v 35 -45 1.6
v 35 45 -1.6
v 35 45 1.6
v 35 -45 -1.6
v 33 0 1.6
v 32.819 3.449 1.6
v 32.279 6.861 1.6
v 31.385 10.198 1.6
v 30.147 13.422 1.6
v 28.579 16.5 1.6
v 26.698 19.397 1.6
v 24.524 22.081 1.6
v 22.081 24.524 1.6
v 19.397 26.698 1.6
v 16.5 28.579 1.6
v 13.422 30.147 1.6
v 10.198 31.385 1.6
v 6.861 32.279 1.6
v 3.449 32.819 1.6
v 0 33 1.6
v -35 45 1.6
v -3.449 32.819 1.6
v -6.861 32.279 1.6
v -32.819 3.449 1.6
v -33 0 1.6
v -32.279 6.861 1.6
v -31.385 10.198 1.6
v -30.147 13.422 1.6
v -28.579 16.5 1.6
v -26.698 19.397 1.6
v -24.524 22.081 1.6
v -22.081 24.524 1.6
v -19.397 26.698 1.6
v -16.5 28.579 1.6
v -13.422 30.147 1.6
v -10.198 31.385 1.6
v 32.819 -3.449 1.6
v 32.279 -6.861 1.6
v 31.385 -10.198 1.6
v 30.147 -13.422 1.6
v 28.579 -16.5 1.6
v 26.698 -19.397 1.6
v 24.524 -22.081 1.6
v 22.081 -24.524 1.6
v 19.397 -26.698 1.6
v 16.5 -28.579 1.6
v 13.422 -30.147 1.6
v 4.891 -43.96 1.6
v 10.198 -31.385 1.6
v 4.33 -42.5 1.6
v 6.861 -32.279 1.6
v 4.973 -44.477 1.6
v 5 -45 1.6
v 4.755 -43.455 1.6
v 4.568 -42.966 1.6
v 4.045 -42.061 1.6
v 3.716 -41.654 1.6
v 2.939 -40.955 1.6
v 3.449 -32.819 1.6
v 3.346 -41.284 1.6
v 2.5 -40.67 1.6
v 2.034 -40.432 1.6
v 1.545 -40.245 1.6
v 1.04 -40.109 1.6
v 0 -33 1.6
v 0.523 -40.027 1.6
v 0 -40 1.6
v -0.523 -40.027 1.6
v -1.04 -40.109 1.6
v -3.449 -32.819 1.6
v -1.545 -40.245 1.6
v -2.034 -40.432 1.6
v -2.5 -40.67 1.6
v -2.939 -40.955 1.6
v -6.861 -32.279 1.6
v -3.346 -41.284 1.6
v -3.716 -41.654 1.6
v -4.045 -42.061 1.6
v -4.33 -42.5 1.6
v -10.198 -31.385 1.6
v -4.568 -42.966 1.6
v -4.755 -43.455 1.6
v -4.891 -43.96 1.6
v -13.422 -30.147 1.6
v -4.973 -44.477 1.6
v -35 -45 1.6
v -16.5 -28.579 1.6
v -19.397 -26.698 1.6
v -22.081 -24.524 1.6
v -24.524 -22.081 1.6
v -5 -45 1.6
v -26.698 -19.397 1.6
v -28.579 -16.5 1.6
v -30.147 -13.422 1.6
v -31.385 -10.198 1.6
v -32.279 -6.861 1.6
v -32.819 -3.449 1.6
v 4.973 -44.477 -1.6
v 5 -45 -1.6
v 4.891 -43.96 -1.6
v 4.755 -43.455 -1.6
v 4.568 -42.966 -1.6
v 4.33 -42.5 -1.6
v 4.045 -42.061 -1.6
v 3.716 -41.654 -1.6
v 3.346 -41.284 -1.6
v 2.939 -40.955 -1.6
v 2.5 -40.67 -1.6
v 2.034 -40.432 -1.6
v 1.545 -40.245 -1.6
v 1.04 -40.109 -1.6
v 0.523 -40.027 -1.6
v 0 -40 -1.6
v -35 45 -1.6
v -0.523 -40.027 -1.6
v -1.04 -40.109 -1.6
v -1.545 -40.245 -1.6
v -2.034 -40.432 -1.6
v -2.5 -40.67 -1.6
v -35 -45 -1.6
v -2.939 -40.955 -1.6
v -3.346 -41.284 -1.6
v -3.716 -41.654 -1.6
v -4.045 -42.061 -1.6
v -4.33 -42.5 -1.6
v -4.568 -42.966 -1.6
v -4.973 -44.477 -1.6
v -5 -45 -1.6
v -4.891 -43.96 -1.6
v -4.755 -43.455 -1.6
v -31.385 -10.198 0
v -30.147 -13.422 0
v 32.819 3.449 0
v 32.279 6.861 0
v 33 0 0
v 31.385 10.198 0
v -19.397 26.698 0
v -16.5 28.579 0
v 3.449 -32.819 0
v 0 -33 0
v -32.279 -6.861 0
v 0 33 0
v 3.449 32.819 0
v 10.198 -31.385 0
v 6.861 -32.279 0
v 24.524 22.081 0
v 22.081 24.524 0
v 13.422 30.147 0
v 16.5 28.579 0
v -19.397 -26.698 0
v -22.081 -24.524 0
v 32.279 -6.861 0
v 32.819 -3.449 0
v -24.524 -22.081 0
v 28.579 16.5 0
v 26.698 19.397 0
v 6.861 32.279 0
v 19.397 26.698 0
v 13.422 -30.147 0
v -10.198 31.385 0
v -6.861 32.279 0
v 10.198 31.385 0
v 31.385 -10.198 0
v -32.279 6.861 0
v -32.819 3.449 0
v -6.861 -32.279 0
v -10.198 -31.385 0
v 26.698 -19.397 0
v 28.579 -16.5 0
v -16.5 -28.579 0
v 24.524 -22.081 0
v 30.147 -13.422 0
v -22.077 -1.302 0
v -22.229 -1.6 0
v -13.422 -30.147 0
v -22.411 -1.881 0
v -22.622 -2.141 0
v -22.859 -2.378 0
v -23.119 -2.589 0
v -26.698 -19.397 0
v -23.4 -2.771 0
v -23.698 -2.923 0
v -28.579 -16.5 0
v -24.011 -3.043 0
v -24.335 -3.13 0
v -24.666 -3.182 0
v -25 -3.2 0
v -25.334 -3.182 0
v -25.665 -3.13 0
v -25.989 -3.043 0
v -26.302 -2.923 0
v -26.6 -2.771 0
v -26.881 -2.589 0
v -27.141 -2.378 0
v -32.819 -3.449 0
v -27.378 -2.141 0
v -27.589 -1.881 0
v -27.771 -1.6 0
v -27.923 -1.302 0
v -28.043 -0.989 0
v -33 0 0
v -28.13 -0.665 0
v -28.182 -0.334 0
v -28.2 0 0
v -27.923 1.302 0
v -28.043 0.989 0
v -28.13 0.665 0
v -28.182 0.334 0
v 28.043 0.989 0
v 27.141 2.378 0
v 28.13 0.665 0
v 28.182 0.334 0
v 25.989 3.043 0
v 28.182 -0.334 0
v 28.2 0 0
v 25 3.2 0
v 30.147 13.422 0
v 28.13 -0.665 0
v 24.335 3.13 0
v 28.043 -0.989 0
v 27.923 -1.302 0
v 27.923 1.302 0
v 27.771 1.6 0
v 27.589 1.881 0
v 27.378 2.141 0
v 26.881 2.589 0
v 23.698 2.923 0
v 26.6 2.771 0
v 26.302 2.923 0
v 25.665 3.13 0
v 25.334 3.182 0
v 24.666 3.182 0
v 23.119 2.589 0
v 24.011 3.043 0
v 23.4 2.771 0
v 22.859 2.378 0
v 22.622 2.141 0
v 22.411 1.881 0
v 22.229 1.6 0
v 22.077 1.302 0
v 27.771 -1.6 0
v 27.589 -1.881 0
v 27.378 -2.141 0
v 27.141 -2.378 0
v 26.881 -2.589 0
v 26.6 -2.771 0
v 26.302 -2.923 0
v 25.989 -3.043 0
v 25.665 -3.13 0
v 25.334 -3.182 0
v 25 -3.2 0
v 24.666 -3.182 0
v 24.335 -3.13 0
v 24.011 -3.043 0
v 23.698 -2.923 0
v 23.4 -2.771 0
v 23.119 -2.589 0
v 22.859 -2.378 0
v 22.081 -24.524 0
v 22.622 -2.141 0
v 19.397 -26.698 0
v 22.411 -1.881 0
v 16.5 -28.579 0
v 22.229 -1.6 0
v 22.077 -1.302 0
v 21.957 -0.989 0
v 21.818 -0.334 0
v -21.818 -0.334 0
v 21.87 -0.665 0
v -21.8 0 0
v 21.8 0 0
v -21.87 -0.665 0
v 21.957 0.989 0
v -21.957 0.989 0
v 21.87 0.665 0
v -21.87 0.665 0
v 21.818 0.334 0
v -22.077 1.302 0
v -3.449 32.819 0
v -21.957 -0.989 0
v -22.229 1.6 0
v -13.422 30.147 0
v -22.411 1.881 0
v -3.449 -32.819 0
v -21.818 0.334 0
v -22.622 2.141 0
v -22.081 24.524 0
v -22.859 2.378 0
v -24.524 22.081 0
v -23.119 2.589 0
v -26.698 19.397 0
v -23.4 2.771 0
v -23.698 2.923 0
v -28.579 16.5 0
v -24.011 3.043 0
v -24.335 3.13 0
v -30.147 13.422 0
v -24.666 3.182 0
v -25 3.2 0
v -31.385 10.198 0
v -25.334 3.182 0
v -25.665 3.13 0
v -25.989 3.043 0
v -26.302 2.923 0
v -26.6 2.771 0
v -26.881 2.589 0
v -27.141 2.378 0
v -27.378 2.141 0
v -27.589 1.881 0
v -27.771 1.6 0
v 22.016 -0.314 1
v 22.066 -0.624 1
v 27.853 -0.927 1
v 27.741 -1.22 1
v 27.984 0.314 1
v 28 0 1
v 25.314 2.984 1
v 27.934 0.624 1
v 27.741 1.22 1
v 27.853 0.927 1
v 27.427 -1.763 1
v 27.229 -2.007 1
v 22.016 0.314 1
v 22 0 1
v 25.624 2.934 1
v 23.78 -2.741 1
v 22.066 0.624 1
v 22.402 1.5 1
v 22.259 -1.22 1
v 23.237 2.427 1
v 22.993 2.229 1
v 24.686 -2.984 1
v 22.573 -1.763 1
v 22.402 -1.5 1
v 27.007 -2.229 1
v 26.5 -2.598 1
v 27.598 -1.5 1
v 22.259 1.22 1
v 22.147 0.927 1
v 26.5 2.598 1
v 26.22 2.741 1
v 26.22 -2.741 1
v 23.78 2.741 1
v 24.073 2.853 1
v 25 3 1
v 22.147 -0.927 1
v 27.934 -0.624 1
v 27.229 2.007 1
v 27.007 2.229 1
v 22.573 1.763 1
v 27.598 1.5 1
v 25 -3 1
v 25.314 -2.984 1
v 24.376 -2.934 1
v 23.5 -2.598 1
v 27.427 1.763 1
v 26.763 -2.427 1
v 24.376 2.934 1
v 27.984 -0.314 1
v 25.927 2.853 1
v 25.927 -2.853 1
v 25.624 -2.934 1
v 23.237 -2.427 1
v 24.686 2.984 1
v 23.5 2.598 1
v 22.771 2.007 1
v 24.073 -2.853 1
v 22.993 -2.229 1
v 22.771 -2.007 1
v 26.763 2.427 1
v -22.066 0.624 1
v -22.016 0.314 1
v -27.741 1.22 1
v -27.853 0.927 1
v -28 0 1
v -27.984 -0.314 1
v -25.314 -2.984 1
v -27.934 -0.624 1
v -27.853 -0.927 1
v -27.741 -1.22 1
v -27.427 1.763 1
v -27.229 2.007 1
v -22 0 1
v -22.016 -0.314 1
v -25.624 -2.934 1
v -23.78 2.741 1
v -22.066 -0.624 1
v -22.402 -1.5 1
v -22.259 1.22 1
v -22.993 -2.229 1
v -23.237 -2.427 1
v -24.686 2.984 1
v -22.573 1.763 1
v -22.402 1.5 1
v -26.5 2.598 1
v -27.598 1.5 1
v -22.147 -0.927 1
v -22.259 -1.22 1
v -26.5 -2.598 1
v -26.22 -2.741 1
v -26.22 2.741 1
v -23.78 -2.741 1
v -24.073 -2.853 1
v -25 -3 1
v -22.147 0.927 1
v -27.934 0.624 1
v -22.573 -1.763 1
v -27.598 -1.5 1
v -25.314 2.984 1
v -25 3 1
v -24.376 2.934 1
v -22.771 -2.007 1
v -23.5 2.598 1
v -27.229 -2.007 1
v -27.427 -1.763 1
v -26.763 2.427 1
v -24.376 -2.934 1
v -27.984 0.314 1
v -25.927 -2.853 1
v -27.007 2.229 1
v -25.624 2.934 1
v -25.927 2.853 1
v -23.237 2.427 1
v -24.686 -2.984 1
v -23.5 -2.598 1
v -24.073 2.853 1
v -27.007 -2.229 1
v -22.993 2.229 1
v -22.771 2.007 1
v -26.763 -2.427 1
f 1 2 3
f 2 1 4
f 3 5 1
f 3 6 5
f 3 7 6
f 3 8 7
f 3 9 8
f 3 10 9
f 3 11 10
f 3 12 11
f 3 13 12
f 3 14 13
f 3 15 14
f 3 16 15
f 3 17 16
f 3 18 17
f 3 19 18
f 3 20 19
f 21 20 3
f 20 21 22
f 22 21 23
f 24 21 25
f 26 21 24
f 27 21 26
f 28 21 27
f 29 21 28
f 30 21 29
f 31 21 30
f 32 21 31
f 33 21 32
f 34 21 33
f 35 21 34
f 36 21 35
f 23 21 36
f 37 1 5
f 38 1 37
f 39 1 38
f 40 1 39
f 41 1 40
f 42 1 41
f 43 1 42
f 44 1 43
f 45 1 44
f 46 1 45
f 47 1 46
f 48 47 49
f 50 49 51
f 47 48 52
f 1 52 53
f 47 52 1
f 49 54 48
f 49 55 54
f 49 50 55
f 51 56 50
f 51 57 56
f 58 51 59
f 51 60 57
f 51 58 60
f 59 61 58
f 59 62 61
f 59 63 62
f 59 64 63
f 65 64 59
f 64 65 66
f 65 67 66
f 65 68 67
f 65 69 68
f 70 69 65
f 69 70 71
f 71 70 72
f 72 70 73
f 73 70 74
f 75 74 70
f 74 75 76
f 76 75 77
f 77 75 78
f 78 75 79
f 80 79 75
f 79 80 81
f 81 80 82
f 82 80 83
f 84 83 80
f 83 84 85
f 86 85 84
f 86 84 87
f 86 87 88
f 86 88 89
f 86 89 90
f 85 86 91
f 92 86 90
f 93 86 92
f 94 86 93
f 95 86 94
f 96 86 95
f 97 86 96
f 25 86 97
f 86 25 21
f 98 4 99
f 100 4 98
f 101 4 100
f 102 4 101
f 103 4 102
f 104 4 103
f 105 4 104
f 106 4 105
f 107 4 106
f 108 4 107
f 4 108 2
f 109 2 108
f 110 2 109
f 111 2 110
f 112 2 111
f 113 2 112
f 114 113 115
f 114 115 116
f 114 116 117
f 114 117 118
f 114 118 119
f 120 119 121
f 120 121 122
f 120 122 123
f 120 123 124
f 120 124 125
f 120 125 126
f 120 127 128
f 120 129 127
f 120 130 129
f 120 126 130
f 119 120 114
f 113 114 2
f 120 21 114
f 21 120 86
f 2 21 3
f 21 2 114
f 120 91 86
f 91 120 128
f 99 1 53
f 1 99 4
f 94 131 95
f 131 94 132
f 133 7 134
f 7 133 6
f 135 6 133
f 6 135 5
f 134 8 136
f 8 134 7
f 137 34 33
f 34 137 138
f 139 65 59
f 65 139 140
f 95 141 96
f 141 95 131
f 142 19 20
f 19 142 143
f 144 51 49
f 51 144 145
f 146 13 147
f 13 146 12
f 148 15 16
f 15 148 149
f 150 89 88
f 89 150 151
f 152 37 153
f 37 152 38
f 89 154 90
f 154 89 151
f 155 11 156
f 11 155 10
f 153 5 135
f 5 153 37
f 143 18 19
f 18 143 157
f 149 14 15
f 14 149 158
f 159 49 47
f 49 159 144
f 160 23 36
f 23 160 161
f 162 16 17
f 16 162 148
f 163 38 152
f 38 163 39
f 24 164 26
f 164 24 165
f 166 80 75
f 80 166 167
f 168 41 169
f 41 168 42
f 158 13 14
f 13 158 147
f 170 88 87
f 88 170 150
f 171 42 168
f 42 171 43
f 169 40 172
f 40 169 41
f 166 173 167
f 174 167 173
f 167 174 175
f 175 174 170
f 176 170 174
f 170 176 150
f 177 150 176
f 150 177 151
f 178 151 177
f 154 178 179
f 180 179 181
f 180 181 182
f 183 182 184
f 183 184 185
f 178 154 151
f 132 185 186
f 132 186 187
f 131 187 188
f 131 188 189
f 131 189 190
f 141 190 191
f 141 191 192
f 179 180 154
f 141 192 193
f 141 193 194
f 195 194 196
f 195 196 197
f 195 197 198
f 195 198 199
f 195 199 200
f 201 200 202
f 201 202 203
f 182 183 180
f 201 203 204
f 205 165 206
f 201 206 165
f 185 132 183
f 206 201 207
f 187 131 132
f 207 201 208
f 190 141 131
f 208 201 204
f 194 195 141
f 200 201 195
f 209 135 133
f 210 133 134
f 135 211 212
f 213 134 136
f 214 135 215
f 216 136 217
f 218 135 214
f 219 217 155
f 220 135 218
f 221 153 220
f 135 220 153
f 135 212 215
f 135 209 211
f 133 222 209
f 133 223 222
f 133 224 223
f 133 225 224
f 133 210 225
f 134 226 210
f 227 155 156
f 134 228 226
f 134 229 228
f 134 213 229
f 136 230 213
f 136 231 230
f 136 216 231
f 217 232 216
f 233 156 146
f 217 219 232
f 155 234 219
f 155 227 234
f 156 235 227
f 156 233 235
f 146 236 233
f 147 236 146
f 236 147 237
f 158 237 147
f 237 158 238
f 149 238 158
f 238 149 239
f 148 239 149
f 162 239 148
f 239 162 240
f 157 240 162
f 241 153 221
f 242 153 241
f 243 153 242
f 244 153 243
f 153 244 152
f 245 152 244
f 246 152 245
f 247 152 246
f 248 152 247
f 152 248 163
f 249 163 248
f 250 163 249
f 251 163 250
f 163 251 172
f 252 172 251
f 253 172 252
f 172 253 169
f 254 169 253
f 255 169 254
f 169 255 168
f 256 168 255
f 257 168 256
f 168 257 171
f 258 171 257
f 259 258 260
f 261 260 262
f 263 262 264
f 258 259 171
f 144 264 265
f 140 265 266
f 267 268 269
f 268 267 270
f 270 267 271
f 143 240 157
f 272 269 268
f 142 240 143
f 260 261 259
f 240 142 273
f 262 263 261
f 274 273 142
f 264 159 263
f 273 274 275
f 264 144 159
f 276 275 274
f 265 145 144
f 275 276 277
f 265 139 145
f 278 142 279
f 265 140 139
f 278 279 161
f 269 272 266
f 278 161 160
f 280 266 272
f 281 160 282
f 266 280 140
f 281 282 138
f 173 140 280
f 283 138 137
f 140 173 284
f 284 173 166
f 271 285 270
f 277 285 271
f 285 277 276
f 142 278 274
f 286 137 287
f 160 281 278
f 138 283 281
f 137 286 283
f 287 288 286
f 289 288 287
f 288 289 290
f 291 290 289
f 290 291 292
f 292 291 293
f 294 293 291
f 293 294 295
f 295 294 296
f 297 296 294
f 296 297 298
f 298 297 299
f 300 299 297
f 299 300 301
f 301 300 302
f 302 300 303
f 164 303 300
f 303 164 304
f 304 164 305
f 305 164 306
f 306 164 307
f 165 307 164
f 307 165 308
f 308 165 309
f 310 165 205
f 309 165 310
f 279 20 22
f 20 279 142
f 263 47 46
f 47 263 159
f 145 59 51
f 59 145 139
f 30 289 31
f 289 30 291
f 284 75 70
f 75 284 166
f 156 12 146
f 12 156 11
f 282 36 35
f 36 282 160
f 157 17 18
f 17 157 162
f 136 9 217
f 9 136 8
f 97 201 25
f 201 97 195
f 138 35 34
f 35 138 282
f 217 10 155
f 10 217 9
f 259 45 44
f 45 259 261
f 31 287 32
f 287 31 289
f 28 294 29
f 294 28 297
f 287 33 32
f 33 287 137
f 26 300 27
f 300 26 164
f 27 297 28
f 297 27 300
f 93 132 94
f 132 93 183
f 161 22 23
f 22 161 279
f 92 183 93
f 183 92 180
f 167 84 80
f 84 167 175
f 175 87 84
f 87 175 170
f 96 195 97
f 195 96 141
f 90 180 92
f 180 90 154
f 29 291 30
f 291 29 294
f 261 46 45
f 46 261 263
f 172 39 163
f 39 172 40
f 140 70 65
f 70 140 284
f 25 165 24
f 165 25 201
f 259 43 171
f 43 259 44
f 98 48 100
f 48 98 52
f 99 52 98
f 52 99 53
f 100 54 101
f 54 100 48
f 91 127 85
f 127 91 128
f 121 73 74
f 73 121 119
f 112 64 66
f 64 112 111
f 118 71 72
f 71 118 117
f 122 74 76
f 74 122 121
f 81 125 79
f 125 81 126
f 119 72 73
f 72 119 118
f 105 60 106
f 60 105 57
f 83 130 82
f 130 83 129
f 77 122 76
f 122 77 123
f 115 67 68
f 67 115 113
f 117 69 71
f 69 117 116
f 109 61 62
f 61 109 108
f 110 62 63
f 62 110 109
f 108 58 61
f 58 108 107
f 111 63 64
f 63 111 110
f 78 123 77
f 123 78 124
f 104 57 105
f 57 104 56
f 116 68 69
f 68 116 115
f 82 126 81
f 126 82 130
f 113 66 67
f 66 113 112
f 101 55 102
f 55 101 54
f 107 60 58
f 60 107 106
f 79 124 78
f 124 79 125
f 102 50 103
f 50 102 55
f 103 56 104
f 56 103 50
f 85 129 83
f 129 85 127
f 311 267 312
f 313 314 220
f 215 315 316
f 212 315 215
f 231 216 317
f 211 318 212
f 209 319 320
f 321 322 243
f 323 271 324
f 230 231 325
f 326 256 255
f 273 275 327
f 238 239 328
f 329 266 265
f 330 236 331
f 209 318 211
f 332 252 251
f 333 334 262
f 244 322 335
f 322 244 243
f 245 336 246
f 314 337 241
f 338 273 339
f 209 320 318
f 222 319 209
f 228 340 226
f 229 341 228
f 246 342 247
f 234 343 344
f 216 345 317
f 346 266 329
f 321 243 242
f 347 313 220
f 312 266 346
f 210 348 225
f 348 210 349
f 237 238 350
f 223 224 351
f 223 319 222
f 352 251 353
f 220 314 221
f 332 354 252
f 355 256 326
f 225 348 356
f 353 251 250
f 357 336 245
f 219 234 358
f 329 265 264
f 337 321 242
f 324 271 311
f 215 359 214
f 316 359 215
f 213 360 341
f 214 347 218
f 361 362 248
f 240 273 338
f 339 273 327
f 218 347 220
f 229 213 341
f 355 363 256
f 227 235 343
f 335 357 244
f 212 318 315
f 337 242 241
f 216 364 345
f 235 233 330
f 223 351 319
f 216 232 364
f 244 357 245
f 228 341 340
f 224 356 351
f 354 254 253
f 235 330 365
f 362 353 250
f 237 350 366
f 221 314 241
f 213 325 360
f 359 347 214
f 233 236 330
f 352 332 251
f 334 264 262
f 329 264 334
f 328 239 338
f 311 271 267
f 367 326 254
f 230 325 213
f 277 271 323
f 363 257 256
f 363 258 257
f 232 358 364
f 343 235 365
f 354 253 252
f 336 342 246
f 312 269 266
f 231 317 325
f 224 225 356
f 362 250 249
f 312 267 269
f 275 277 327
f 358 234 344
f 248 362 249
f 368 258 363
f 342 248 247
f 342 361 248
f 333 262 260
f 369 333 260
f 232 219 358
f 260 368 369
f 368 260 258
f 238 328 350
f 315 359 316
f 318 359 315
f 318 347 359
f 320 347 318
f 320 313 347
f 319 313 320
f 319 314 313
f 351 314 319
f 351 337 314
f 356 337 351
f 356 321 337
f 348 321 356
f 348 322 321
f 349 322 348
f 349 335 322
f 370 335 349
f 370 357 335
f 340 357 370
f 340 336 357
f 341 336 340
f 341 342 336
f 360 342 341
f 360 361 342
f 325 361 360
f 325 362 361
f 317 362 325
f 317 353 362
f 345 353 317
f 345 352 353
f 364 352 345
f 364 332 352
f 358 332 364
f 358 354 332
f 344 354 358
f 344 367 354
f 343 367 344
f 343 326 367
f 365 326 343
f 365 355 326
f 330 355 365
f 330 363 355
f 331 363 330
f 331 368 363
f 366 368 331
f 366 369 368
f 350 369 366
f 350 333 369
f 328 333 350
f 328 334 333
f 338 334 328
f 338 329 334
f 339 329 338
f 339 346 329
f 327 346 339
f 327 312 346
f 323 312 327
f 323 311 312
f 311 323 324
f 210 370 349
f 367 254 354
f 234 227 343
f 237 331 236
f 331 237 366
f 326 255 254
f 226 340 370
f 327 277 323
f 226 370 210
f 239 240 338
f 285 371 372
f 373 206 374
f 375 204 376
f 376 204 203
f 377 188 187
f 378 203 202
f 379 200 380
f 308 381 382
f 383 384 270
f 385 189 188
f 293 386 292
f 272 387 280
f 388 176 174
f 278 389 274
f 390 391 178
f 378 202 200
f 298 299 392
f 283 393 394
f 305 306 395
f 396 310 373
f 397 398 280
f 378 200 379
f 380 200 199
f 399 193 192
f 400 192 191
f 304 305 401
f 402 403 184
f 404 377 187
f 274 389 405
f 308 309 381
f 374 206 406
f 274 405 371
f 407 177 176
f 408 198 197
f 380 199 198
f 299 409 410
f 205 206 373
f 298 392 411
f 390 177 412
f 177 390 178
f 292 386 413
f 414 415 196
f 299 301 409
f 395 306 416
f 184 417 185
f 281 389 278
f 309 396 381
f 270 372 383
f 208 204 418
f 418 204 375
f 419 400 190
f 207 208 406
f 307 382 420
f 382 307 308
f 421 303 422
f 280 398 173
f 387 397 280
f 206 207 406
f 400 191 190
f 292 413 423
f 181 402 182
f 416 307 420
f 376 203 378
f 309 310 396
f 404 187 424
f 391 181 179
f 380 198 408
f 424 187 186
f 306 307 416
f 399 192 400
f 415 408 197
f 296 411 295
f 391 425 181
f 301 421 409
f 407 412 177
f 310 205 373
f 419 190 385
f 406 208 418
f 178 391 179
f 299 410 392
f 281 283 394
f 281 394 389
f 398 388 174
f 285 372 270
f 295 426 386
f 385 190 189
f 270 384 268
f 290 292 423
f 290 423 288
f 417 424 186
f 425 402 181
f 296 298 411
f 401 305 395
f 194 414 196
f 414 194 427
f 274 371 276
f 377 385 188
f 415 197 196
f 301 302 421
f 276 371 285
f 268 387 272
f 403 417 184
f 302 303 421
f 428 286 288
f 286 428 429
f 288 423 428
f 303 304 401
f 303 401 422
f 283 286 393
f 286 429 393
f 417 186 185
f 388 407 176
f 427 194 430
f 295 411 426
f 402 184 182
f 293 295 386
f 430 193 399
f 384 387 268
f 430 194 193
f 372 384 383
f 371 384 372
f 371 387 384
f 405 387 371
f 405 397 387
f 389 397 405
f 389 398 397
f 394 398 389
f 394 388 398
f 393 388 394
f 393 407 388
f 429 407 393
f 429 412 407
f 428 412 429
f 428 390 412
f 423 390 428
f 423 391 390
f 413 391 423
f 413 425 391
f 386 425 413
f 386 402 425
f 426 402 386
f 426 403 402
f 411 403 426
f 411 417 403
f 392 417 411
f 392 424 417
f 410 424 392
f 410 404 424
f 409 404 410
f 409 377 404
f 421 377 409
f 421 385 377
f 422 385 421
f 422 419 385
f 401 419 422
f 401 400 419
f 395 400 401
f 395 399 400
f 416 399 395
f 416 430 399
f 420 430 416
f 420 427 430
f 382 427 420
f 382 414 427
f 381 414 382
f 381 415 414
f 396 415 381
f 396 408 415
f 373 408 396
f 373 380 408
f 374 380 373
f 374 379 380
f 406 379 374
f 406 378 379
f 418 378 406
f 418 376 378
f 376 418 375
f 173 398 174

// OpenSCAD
$fn=60;
difference(){
    cube([70,90,2*1.6],center=true);
    cylinder(d=66, height = 1,6);
    translate([0,-45,0])
        cylinder(d=10,h=4, center=true);
}
for(a = [0,180]){
    rotate([0,0,a])
        translate([50/2,0,0])
            cylinder(d1=6.4, d2=6,  height = 1);
}
